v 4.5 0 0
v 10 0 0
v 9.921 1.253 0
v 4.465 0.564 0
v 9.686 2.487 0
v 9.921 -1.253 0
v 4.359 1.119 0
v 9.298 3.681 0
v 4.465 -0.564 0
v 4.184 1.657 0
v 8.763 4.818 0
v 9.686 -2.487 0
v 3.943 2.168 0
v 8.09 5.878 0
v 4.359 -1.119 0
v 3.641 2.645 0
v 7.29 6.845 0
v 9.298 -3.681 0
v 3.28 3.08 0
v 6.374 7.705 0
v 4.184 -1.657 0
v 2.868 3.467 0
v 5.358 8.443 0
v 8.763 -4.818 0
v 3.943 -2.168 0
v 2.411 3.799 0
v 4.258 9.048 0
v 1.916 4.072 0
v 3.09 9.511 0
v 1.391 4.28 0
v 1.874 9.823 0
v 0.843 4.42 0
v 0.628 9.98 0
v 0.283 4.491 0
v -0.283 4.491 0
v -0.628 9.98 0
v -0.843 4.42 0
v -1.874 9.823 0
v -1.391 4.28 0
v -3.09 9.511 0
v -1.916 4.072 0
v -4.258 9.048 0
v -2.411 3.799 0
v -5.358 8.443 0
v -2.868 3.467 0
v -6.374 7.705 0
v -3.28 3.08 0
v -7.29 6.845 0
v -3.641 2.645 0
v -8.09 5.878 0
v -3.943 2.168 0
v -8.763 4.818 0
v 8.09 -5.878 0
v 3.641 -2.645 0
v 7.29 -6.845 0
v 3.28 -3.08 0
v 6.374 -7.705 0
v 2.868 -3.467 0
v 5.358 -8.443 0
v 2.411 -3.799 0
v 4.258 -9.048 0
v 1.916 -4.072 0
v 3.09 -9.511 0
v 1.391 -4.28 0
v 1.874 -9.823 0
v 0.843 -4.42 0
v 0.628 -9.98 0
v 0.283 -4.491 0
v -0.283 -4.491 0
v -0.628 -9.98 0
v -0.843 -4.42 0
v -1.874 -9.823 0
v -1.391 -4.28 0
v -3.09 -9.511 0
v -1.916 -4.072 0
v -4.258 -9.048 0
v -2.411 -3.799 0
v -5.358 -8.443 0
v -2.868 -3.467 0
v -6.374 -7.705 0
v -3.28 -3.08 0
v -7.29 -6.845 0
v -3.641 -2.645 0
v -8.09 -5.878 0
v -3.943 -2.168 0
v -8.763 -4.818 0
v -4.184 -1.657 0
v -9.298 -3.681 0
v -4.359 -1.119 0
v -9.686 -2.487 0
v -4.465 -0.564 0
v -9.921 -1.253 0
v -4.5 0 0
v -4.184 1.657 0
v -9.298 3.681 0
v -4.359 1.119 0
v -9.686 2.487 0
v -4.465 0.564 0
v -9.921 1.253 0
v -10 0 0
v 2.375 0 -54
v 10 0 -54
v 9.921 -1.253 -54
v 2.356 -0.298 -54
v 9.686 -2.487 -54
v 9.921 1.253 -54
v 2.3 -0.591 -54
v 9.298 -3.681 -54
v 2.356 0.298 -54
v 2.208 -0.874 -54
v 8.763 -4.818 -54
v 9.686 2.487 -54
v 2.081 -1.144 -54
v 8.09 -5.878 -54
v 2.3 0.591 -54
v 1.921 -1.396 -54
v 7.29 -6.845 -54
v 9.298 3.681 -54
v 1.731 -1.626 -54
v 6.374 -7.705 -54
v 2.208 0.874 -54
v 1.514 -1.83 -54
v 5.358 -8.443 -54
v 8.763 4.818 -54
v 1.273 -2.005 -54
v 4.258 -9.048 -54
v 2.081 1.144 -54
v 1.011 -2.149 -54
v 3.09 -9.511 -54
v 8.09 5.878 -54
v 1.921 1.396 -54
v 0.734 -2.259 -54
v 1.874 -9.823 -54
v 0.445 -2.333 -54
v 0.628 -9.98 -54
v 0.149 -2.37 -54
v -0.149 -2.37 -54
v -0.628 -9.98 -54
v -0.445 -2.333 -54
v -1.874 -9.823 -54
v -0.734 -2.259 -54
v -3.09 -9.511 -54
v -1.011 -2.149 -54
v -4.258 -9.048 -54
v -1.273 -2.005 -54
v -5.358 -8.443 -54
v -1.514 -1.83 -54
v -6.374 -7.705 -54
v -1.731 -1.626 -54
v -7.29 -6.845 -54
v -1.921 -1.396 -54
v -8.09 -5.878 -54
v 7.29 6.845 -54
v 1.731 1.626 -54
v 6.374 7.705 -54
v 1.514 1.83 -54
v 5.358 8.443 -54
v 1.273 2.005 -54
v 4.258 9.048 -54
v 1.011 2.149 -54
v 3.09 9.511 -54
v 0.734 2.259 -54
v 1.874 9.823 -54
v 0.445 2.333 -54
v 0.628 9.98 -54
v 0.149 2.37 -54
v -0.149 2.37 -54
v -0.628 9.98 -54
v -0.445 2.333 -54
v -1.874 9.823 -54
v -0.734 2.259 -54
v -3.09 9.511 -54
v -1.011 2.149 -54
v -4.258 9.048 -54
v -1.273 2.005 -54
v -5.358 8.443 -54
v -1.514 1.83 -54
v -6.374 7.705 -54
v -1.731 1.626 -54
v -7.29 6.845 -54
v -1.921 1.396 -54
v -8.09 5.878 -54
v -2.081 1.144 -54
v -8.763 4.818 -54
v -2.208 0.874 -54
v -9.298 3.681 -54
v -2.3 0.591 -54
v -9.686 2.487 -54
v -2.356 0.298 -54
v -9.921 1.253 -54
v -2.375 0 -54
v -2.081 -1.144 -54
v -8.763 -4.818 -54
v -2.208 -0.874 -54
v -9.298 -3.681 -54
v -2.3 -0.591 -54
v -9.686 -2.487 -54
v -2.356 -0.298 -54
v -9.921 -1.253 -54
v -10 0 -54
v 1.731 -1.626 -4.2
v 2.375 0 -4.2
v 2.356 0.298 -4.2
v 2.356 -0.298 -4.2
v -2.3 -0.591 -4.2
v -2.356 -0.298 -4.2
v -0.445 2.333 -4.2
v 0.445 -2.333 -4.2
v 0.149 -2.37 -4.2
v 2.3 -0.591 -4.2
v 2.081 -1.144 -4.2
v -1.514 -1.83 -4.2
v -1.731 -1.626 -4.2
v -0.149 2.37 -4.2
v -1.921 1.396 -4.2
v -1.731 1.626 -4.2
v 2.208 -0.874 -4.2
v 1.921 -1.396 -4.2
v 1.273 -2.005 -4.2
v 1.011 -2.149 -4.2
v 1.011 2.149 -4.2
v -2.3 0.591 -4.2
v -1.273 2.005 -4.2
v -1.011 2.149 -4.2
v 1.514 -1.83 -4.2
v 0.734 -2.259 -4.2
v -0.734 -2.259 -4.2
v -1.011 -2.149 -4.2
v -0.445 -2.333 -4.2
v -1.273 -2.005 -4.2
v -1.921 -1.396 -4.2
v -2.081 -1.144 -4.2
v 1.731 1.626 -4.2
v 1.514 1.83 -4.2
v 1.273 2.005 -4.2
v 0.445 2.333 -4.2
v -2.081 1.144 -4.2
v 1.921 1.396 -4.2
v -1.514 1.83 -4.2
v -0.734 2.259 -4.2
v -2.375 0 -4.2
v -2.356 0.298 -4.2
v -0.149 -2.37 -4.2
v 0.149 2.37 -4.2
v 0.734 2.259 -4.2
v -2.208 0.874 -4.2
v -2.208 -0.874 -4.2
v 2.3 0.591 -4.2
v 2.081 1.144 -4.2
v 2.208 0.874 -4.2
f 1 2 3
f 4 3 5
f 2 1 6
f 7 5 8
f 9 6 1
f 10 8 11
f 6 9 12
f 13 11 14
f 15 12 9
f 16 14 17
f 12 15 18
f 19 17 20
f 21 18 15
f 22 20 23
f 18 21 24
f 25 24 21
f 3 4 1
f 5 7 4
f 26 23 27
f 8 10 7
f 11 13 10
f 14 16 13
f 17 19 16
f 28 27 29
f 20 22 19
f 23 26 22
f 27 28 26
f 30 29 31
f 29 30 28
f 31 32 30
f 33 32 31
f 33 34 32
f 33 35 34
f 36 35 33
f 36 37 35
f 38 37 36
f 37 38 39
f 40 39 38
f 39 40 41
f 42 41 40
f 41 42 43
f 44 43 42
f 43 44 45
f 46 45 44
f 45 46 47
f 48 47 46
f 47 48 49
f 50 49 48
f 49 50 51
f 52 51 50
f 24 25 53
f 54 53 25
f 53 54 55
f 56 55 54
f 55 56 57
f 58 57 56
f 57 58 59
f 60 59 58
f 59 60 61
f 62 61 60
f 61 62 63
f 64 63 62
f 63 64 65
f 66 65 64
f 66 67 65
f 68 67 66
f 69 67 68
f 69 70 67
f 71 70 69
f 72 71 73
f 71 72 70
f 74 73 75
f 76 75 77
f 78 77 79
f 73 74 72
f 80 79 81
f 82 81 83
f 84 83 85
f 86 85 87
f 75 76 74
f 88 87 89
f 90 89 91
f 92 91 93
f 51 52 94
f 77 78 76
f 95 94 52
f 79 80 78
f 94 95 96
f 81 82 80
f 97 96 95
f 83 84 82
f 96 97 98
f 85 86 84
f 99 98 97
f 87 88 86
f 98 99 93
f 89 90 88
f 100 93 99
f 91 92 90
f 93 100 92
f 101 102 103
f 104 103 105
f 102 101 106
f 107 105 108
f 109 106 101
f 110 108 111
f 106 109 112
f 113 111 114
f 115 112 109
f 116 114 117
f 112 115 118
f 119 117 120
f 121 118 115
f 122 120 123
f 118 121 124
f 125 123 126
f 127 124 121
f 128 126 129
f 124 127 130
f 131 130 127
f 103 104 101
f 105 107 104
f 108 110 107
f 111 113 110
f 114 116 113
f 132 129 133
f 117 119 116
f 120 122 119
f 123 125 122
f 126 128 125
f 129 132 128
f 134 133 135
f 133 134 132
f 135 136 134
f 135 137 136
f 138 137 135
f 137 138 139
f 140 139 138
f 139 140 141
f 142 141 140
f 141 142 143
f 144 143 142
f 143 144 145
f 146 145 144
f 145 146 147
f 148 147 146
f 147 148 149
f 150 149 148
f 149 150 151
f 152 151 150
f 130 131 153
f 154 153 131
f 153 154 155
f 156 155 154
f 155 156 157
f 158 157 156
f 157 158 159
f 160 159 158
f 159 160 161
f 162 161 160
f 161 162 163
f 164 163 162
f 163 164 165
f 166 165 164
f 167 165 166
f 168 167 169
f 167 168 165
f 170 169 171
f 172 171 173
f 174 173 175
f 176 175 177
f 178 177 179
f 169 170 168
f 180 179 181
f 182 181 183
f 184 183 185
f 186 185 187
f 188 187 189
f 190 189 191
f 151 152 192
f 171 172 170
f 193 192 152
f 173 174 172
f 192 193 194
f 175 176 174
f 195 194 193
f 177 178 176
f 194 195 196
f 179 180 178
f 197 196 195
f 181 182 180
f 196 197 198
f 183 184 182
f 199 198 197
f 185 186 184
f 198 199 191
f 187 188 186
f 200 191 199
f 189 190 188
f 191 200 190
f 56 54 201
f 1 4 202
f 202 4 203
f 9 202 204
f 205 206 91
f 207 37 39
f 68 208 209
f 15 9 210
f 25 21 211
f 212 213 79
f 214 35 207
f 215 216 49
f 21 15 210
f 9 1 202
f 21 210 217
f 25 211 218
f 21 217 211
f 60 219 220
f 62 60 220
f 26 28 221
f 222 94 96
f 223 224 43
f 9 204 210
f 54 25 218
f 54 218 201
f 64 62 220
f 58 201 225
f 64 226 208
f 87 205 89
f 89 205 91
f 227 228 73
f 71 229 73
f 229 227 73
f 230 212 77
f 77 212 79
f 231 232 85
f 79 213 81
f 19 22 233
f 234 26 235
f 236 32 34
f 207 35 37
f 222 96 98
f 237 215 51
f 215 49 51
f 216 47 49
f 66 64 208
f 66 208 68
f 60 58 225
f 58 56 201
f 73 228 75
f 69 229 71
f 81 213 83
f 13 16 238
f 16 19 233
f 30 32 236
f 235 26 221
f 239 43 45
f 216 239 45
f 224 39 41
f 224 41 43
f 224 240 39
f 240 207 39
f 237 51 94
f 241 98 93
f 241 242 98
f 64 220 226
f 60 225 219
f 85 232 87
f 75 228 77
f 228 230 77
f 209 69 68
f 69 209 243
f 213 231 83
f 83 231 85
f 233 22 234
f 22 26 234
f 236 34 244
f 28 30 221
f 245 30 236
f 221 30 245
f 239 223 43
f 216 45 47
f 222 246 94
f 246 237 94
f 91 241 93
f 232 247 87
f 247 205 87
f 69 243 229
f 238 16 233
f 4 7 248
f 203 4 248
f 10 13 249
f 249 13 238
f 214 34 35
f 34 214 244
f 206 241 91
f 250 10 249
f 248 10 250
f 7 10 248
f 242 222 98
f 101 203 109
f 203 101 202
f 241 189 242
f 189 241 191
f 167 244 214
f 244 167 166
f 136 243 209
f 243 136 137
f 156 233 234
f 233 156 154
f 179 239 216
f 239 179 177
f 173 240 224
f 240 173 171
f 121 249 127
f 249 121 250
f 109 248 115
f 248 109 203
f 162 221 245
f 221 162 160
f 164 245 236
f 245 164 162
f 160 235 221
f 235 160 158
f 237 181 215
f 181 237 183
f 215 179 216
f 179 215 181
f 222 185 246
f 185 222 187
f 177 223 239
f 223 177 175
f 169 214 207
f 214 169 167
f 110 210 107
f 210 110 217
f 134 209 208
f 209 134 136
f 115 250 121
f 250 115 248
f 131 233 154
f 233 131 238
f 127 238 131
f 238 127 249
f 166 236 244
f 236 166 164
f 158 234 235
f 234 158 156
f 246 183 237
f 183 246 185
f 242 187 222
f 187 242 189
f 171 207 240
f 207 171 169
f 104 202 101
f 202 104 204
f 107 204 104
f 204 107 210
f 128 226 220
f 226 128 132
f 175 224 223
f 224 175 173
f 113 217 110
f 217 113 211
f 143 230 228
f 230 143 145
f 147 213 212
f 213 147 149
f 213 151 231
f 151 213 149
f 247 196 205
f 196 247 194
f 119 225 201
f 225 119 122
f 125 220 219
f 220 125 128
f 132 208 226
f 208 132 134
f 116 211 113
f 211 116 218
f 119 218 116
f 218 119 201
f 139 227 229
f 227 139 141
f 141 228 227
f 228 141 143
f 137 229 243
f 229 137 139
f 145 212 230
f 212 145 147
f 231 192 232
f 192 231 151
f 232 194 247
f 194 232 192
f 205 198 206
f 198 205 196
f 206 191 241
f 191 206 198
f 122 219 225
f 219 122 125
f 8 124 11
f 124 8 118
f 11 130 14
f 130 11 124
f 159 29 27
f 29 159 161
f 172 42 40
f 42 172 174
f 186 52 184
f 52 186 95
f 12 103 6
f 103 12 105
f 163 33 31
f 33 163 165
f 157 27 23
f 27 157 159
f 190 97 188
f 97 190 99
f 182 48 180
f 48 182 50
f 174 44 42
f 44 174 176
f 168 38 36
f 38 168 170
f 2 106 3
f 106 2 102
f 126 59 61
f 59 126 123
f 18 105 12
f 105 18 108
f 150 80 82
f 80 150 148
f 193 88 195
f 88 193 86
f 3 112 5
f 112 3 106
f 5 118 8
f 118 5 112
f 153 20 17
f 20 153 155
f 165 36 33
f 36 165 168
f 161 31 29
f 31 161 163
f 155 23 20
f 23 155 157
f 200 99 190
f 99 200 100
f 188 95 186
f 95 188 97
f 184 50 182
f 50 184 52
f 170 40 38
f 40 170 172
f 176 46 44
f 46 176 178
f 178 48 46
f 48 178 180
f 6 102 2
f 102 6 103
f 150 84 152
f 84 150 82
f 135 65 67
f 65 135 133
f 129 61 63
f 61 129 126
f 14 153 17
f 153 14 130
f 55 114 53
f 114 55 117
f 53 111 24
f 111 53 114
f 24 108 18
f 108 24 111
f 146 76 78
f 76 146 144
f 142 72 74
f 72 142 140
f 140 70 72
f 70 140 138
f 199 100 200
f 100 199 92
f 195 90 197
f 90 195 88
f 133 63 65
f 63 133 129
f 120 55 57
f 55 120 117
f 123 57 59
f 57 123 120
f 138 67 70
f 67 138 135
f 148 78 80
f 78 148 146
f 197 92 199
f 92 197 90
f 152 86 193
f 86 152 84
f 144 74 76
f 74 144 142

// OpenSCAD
$fn = 50;


difference() {
	union() {
		translate(v = [0, 0, -54.0000000000]) {
			cylinder(h = 54, r = 10.0000000000);
		}
		cylinder(h = 0, r = 13.0000000000);
	}
	union() {
		translate(v = [0, 0, 0]) {
			rotate(a = [0, 0, 0]) {
				difference() {
					union() {
						#translate(v = [0, 0, -54.0000000000]) {
							cylinder(h = 54, r = 2.2500000000);
						}
						#translate(v = [0, 0, -4.2000000000]) {
							cylinder(h = 4.2000000000, r = 10.0000000000, r1 = 2.3750000000, r2 = 4.5000000000);
						}
						#translate(v = [0, 0, -54.0000000000]) {
							cylinder(h = 54, r = 2.3750000000);
						}
						#translate(v = [0, 0, -54.0000000000]) {
							cylinder(h = 54, r = 2.2500000000);
						}
					}
					union();
				}
			}
		}
	}
}
